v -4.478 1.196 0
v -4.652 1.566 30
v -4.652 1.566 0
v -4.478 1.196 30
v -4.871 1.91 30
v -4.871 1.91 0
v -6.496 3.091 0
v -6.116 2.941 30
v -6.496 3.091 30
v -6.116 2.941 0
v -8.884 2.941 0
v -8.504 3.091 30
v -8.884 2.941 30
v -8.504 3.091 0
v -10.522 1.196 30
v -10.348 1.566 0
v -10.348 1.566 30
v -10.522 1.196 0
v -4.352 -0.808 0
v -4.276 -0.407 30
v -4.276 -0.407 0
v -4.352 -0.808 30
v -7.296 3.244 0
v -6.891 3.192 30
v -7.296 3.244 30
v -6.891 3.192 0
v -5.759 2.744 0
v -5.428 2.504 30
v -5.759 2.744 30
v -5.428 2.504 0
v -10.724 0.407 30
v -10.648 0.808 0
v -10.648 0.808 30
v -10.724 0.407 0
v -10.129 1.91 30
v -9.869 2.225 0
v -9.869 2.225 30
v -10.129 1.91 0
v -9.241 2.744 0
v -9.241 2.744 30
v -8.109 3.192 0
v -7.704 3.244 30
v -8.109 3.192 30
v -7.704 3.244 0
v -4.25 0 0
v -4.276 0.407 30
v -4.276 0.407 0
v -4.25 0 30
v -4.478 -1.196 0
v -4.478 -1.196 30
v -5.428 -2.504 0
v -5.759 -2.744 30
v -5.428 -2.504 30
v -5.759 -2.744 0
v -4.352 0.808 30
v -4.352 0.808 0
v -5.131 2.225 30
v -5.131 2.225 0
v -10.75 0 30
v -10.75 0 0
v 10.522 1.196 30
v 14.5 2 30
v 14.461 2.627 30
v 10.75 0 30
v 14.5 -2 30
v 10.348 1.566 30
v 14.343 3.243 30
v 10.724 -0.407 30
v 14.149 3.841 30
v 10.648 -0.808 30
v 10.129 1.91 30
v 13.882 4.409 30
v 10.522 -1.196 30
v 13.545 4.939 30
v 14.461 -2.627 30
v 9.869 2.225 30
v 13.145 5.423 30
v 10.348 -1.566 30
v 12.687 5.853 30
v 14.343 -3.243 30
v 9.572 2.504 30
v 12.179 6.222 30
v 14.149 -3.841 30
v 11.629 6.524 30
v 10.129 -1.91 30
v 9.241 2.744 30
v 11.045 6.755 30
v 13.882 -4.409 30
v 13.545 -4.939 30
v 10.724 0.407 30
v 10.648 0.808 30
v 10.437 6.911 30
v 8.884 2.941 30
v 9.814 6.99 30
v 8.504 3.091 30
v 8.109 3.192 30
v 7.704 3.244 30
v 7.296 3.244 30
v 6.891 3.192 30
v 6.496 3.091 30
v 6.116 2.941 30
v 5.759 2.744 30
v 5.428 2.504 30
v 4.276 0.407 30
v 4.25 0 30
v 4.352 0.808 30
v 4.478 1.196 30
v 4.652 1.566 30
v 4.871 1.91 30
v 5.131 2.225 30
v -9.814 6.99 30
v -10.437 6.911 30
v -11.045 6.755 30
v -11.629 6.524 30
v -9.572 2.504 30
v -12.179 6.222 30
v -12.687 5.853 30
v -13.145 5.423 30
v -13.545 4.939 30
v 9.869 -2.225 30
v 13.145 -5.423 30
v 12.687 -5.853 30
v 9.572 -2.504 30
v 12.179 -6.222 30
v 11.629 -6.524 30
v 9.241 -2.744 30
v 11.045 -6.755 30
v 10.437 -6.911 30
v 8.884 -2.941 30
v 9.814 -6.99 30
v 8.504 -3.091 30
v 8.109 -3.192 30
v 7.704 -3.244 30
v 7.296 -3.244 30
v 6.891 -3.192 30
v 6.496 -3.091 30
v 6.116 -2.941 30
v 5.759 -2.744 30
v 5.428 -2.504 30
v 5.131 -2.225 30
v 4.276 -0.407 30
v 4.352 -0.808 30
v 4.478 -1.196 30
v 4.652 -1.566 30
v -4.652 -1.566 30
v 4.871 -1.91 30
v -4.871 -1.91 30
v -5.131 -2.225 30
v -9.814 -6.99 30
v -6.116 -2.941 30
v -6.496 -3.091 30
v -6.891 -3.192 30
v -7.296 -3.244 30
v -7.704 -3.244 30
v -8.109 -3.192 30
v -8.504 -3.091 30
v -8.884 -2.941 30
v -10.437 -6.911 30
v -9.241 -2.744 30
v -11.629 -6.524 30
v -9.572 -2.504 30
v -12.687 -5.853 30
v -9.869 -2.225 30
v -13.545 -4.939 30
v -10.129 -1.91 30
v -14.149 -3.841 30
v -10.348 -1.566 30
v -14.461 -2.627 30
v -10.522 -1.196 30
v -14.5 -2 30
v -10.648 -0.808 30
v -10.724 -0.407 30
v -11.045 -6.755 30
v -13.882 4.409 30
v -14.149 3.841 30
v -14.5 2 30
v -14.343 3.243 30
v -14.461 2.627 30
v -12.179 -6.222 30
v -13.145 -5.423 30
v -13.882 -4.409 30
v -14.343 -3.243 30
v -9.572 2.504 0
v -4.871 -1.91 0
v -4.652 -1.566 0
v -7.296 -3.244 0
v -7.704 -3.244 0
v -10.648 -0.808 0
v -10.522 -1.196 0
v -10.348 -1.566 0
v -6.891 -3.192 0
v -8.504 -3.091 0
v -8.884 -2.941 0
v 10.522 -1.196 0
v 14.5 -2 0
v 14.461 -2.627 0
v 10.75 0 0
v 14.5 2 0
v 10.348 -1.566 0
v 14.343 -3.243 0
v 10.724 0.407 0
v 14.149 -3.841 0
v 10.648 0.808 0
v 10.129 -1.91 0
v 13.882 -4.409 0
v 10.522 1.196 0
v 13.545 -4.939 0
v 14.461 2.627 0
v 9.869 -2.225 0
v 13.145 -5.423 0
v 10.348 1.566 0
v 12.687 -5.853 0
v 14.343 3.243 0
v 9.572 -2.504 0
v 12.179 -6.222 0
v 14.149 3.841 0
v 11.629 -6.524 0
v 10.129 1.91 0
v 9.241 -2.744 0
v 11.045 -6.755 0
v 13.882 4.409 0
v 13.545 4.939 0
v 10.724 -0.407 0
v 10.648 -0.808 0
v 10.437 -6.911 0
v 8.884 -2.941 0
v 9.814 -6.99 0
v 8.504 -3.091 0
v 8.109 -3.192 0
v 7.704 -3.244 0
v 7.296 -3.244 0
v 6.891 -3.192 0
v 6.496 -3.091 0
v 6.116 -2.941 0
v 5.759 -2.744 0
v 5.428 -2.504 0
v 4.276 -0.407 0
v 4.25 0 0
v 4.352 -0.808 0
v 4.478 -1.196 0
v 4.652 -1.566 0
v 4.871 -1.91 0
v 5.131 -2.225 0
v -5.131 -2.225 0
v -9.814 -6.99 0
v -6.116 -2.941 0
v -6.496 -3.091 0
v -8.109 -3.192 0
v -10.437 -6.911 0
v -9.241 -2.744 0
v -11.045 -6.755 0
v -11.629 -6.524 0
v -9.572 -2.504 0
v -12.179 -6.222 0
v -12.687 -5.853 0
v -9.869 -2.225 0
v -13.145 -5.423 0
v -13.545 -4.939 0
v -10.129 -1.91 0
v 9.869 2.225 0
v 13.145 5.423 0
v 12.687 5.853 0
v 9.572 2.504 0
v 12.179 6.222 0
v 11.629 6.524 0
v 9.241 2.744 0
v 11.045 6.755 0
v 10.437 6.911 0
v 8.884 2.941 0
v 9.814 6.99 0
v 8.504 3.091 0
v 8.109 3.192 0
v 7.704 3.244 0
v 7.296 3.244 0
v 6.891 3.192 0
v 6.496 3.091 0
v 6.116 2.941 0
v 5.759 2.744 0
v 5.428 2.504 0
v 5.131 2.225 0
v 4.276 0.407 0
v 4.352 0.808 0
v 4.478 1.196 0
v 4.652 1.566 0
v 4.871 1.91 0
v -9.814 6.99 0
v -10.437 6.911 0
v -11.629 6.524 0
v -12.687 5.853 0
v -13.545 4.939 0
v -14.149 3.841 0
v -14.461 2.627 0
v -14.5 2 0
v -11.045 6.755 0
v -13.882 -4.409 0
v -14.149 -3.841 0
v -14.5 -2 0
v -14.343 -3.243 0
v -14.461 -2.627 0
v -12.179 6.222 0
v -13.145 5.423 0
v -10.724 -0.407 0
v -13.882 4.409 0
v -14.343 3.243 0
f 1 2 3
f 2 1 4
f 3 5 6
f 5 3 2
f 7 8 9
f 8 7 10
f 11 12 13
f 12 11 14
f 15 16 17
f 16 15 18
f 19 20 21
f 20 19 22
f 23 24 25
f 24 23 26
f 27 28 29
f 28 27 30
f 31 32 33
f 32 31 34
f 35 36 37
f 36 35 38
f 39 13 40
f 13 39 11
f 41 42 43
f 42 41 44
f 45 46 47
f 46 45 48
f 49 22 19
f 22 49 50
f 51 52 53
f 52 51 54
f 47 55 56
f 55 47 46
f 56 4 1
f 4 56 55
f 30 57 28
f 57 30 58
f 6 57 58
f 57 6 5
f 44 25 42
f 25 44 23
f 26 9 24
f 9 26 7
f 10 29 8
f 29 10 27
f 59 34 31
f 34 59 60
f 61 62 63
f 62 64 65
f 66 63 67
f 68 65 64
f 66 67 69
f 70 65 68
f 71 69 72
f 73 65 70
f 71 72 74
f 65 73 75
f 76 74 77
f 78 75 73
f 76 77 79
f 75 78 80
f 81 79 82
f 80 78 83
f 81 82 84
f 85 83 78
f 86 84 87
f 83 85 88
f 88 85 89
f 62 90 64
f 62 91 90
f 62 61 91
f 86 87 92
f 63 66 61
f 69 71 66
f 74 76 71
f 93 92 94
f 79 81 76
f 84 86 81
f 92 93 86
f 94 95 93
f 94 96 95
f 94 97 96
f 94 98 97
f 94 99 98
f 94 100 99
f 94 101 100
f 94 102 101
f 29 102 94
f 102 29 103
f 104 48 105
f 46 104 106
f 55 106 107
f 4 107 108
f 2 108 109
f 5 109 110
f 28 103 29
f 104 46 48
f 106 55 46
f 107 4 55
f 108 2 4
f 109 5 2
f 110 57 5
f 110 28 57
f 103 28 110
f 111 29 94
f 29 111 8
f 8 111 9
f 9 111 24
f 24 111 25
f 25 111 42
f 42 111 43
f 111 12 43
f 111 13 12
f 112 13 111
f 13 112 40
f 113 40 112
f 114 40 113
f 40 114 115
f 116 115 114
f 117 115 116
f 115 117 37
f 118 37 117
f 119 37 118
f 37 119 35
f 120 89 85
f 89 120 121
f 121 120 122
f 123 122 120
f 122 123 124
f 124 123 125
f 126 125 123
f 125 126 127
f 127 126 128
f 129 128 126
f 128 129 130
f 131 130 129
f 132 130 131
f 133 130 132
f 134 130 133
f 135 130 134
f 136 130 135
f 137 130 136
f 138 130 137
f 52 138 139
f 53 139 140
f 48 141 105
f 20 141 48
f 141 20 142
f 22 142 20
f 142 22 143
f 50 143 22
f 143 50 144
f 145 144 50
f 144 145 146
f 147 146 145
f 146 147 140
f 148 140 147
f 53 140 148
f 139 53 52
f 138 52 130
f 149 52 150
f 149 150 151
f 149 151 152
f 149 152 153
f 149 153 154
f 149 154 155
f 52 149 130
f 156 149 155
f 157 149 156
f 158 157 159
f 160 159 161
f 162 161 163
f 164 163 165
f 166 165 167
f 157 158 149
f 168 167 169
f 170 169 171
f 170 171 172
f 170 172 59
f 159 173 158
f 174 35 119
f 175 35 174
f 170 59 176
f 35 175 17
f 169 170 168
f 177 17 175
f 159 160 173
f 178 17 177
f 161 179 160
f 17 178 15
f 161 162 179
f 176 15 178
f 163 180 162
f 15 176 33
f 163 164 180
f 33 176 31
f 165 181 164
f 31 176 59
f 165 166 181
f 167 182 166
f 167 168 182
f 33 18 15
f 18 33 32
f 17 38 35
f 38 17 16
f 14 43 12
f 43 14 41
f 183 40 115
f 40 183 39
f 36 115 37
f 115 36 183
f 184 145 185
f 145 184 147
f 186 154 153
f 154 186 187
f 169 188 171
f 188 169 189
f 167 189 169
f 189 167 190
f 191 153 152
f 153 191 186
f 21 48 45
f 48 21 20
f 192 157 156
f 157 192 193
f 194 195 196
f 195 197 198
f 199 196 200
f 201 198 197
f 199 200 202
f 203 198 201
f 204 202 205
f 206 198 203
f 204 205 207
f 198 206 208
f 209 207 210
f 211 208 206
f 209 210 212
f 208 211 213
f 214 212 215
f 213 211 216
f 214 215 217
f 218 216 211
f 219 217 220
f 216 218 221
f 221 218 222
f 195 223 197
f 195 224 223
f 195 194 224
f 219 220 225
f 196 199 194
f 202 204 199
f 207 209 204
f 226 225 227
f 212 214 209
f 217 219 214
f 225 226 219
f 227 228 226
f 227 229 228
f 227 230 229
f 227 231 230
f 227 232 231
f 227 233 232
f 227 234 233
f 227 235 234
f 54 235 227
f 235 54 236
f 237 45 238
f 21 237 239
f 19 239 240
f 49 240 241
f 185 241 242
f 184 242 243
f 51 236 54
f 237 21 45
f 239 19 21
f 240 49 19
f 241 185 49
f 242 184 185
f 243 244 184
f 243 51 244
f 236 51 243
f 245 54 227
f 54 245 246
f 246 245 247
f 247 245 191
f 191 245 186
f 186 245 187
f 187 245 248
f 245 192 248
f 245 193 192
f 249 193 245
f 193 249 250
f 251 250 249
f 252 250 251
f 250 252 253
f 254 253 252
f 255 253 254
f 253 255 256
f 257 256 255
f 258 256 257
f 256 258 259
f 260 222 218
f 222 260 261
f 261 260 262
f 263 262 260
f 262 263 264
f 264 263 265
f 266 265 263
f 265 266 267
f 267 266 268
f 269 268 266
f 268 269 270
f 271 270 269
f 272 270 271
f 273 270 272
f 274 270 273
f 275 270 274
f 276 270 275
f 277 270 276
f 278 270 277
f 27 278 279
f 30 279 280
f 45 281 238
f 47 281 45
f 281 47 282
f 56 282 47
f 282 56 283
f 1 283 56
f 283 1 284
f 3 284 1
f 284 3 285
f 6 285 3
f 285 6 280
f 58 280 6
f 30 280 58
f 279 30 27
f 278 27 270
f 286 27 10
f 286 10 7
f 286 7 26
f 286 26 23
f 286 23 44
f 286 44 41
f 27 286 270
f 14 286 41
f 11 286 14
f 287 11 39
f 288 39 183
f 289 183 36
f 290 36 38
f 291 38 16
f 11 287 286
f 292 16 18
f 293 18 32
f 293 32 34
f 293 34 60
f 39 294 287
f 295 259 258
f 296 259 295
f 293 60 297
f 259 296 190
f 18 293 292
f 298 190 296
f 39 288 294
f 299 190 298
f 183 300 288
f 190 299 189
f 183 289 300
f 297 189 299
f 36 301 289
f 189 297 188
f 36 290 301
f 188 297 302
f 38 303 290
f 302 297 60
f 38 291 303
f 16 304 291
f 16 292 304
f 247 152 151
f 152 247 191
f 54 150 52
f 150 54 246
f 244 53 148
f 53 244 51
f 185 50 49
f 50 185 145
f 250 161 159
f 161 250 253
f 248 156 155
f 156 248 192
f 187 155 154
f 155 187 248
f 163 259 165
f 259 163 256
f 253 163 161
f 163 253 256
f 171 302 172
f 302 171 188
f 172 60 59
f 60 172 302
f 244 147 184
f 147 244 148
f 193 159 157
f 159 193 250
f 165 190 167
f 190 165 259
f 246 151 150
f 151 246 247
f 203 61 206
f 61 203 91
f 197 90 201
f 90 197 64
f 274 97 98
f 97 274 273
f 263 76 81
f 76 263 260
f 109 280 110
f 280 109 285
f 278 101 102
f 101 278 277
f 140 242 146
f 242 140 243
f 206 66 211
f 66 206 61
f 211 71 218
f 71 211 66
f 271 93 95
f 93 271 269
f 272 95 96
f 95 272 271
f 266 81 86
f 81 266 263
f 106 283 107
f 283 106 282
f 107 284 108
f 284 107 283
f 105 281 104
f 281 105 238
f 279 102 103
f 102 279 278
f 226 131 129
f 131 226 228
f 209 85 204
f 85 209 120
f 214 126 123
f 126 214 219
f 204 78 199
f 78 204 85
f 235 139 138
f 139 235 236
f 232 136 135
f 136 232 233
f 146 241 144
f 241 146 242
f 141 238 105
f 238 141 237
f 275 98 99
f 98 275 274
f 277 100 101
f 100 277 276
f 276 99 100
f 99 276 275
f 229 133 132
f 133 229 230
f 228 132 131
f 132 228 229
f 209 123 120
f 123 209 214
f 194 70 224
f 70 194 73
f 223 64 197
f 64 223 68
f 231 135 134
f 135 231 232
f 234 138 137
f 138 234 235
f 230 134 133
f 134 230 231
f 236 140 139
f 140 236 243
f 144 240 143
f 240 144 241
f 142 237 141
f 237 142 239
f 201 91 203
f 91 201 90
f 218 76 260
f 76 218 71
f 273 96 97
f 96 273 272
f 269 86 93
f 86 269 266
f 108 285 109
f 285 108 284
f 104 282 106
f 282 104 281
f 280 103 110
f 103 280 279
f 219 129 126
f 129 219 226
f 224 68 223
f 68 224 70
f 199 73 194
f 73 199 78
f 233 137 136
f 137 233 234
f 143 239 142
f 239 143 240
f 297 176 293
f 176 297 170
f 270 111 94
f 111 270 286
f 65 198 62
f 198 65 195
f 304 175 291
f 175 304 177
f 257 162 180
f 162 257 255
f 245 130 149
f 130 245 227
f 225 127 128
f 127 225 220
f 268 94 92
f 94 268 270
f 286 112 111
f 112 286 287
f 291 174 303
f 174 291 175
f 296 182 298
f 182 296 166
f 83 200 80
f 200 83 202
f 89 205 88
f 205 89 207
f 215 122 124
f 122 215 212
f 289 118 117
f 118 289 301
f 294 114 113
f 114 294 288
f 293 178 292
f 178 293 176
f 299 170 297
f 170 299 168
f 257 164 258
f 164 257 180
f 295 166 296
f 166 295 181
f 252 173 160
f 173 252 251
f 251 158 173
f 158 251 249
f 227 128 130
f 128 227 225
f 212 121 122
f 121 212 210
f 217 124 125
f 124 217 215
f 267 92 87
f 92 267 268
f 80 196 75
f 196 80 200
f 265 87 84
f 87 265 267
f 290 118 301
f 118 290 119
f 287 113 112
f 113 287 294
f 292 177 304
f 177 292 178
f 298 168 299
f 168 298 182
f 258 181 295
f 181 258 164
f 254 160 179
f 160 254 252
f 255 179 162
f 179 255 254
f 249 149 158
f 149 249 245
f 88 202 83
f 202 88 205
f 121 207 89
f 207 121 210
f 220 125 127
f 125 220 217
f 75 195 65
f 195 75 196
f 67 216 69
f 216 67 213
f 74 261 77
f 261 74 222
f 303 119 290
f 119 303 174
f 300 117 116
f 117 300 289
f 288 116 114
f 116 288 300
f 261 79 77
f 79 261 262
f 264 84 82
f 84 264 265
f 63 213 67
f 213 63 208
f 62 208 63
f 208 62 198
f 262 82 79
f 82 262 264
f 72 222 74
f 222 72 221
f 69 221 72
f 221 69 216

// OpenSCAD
$fn = 50;


difference() {
	union() {
		hull() {
			translate(v = [-9.5000000000, 2.0000000000, 0]) {
				cylinder(h = 30, r = 5);
			}
			translate(v = [9.5000000000, 2.0000000000, 0]) {
				cylinder(h = 30, r = 5);
			}
			translate(v = [-9.5000000000, -2.0000000000, 0]) {
				cylinder(h = 30, r = 5);
			}
			translate(v = [9.5000000000, -2.0000000000, 0]) {
				cylinder(h = 30, r = 5);
			}
		}
	}
	union() {
		translate(v = [-7.5000000000, 0.0000000000, 0]) {
			translate(v = [0, 0, -100]) {
				cylinder(h = 200, r = 3.2500000000);
			}
		}
		translate(v = [7.5000000000, 0.0000000000, 0]) {
			translate(v = [0, 0, -100]) {
				cylinder(h = 200, r = 3.2500000000);
			}
		}
	}
}
